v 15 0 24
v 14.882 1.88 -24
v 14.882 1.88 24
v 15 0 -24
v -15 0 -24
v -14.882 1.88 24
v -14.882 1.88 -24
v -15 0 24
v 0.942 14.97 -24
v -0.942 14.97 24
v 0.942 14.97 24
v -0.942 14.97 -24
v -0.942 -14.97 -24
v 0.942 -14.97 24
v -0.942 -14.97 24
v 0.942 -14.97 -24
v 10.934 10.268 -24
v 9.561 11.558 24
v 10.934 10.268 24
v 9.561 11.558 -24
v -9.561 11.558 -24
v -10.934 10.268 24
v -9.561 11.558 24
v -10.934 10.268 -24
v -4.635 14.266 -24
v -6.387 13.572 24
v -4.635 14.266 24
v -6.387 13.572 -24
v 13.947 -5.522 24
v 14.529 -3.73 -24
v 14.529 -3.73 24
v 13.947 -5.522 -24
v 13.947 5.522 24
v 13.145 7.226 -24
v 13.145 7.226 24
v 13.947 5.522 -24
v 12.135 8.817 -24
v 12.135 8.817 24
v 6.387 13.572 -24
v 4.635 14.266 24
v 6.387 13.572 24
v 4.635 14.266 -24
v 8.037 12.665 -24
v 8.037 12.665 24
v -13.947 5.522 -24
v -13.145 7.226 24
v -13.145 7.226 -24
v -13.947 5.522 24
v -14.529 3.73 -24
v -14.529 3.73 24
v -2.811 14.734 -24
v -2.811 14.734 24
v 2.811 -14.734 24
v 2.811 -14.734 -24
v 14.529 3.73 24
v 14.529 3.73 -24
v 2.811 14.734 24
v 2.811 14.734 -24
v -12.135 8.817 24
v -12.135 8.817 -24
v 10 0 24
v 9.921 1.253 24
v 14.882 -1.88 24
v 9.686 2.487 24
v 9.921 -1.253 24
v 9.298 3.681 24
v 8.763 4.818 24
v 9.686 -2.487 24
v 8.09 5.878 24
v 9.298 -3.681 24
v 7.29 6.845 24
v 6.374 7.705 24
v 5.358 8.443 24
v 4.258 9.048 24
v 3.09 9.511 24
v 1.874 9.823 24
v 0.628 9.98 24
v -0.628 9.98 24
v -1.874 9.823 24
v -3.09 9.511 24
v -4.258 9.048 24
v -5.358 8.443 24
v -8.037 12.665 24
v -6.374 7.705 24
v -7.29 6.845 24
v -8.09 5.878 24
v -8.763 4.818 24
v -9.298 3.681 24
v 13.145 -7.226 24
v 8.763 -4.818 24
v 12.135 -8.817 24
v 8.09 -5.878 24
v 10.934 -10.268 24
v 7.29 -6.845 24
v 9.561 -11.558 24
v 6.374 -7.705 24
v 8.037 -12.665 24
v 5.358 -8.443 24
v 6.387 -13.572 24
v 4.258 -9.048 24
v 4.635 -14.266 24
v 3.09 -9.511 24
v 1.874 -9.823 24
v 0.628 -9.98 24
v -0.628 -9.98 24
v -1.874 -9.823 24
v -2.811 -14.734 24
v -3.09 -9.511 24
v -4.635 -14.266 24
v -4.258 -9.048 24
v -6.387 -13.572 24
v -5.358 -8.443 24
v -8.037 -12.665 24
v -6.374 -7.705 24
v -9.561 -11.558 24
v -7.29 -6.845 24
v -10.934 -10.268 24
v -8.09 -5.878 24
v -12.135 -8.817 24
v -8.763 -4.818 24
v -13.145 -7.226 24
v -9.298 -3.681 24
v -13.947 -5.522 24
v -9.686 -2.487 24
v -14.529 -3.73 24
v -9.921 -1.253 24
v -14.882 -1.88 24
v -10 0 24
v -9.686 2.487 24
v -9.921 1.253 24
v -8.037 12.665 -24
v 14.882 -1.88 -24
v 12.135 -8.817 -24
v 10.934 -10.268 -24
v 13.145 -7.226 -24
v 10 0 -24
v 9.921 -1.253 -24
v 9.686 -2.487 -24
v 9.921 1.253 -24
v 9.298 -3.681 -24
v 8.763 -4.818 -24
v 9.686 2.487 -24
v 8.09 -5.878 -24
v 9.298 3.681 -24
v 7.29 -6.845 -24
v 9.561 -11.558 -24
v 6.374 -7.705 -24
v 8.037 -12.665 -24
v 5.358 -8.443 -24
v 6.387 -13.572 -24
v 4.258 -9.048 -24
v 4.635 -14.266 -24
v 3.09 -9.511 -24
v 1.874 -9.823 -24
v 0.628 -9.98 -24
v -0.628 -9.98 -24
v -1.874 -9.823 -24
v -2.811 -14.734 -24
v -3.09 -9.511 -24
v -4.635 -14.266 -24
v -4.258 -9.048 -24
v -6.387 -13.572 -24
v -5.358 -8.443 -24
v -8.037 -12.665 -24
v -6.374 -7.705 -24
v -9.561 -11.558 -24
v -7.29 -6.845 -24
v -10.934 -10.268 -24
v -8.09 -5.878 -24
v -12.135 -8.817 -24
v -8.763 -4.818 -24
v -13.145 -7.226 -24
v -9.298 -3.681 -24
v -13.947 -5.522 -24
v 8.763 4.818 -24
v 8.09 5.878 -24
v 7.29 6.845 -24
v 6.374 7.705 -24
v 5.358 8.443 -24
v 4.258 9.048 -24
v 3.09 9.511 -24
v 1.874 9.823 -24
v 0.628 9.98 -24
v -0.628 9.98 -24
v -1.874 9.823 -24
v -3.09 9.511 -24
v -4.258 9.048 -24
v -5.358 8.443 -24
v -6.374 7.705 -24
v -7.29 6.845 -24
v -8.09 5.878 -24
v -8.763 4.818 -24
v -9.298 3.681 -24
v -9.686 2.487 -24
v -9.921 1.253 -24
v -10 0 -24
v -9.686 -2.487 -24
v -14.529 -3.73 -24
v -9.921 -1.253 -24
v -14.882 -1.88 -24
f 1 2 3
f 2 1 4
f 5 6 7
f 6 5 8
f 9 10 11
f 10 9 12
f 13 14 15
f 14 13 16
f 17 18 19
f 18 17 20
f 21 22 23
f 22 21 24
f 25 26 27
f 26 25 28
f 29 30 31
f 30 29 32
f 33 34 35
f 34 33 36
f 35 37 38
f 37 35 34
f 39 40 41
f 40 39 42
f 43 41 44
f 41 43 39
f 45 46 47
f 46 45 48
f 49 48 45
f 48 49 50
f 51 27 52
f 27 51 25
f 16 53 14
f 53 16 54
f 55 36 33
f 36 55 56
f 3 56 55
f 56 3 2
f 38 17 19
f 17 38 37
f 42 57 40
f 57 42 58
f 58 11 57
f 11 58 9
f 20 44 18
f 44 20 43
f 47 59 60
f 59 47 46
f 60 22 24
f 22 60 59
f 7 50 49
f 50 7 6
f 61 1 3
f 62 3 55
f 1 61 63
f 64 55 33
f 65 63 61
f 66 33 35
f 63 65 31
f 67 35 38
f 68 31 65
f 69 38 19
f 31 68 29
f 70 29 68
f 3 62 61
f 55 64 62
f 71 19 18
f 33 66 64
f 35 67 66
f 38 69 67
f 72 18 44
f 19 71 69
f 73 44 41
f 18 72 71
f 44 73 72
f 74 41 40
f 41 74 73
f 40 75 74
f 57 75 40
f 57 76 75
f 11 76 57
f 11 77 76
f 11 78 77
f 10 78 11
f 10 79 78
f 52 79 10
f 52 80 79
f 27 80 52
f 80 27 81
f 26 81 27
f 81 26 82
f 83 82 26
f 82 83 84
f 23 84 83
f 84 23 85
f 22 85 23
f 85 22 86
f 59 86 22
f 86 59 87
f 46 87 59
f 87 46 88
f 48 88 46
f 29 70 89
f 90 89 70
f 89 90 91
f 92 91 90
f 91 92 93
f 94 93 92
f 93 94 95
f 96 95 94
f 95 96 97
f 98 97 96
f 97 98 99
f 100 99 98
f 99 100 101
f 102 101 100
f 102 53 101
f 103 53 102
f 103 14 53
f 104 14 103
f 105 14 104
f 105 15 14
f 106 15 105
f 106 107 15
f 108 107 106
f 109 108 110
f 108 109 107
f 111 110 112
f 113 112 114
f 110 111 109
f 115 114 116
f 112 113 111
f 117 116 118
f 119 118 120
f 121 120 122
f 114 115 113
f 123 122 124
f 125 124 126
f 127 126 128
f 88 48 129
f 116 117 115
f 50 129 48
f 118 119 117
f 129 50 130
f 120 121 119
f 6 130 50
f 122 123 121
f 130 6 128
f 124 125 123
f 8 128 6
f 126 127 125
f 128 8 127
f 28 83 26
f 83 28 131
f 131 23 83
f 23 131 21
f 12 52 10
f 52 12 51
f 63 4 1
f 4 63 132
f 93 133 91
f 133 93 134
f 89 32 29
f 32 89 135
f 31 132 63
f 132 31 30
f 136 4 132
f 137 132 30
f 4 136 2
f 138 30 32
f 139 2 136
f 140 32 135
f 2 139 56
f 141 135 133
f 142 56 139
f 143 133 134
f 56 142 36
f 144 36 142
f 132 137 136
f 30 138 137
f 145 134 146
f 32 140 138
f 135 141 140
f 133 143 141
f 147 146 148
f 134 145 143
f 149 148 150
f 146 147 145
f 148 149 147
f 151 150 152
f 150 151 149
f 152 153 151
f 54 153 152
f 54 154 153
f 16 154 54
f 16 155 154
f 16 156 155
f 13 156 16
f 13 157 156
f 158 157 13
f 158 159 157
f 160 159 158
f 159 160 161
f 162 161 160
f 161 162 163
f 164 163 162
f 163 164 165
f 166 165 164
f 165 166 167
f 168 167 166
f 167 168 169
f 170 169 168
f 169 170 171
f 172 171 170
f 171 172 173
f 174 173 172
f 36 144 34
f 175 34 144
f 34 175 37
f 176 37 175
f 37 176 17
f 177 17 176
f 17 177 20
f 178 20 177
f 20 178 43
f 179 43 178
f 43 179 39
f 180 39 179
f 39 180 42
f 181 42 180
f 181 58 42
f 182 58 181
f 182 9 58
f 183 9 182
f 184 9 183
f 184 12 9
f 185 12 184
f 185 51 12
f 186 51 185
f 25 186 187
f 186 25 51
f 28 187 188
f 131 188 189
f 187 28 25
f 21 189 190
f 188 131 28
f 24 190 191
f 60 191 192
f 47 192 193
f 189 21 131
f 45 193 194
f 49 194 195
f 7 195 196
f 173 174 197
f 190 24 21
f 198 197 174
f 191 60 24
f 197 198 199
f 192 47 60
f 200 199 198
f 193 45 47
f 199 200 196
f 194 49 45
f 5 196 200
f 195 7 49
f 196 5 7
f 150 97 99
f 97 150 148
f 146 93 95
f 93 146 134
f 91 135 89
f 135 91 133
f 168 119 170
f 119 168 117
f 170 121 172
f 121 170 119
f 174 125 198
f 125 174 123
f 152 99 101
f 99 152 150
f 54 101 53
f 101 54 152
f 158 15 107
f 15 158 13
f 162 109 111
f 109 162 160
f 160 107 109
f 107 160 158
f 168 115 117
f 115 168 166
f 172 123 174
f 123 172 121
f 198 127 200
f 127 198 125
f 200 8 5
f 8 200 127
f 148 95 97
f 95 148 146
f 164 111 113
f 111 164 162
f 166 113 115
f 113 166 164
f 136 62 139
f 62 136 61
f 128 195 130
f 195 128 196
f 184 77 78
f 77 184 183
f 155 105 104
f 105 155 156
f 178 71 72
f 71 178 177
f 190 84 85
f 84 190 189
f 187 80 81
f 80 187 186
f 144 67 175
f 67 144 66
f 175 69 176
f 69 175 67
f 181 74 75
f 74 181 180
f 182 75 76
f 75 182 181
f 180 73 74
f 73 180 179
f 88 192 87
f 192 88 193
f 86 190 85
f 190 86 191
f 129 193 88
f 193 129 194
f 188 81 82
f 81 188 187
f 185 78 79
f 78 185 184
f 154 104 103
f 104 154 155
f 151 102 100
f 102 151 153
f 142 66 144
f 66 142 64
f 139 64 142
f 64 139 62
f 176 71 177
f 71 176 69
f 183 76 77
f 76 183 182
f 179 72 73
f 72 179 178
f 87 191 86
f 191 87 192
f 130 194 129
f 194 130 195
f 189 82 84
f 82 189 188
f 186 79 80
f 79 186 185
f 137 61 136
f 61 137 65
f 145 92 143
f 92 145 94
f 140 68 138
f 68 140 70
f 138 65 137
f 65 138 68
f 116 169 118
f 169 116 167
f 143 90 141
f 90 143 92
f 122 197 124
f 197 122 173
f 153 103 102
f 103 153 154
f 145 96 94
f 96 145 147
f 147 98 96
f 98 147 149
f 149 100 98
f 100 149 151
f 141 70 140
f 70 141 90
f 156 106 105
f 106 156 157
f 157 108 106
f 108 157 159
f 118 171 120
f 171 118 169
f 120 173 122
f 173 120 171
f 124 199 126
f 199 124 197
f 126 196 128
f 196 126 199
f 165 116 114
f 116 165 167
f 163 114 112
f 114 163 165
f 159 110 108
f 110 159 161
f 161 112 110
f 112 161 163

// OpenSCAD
$fn = 50;


difference() {
	union() {
		translate(v = [0, 0, -24.0000000000]) {
			cylinder(h = 48, r = 15.0000000000);
		}
	}
	union() {
		translate(v = [0, 0, -100.0000000000]) {
			cylinder(h = 200, r = 10);
		}
	}
}
